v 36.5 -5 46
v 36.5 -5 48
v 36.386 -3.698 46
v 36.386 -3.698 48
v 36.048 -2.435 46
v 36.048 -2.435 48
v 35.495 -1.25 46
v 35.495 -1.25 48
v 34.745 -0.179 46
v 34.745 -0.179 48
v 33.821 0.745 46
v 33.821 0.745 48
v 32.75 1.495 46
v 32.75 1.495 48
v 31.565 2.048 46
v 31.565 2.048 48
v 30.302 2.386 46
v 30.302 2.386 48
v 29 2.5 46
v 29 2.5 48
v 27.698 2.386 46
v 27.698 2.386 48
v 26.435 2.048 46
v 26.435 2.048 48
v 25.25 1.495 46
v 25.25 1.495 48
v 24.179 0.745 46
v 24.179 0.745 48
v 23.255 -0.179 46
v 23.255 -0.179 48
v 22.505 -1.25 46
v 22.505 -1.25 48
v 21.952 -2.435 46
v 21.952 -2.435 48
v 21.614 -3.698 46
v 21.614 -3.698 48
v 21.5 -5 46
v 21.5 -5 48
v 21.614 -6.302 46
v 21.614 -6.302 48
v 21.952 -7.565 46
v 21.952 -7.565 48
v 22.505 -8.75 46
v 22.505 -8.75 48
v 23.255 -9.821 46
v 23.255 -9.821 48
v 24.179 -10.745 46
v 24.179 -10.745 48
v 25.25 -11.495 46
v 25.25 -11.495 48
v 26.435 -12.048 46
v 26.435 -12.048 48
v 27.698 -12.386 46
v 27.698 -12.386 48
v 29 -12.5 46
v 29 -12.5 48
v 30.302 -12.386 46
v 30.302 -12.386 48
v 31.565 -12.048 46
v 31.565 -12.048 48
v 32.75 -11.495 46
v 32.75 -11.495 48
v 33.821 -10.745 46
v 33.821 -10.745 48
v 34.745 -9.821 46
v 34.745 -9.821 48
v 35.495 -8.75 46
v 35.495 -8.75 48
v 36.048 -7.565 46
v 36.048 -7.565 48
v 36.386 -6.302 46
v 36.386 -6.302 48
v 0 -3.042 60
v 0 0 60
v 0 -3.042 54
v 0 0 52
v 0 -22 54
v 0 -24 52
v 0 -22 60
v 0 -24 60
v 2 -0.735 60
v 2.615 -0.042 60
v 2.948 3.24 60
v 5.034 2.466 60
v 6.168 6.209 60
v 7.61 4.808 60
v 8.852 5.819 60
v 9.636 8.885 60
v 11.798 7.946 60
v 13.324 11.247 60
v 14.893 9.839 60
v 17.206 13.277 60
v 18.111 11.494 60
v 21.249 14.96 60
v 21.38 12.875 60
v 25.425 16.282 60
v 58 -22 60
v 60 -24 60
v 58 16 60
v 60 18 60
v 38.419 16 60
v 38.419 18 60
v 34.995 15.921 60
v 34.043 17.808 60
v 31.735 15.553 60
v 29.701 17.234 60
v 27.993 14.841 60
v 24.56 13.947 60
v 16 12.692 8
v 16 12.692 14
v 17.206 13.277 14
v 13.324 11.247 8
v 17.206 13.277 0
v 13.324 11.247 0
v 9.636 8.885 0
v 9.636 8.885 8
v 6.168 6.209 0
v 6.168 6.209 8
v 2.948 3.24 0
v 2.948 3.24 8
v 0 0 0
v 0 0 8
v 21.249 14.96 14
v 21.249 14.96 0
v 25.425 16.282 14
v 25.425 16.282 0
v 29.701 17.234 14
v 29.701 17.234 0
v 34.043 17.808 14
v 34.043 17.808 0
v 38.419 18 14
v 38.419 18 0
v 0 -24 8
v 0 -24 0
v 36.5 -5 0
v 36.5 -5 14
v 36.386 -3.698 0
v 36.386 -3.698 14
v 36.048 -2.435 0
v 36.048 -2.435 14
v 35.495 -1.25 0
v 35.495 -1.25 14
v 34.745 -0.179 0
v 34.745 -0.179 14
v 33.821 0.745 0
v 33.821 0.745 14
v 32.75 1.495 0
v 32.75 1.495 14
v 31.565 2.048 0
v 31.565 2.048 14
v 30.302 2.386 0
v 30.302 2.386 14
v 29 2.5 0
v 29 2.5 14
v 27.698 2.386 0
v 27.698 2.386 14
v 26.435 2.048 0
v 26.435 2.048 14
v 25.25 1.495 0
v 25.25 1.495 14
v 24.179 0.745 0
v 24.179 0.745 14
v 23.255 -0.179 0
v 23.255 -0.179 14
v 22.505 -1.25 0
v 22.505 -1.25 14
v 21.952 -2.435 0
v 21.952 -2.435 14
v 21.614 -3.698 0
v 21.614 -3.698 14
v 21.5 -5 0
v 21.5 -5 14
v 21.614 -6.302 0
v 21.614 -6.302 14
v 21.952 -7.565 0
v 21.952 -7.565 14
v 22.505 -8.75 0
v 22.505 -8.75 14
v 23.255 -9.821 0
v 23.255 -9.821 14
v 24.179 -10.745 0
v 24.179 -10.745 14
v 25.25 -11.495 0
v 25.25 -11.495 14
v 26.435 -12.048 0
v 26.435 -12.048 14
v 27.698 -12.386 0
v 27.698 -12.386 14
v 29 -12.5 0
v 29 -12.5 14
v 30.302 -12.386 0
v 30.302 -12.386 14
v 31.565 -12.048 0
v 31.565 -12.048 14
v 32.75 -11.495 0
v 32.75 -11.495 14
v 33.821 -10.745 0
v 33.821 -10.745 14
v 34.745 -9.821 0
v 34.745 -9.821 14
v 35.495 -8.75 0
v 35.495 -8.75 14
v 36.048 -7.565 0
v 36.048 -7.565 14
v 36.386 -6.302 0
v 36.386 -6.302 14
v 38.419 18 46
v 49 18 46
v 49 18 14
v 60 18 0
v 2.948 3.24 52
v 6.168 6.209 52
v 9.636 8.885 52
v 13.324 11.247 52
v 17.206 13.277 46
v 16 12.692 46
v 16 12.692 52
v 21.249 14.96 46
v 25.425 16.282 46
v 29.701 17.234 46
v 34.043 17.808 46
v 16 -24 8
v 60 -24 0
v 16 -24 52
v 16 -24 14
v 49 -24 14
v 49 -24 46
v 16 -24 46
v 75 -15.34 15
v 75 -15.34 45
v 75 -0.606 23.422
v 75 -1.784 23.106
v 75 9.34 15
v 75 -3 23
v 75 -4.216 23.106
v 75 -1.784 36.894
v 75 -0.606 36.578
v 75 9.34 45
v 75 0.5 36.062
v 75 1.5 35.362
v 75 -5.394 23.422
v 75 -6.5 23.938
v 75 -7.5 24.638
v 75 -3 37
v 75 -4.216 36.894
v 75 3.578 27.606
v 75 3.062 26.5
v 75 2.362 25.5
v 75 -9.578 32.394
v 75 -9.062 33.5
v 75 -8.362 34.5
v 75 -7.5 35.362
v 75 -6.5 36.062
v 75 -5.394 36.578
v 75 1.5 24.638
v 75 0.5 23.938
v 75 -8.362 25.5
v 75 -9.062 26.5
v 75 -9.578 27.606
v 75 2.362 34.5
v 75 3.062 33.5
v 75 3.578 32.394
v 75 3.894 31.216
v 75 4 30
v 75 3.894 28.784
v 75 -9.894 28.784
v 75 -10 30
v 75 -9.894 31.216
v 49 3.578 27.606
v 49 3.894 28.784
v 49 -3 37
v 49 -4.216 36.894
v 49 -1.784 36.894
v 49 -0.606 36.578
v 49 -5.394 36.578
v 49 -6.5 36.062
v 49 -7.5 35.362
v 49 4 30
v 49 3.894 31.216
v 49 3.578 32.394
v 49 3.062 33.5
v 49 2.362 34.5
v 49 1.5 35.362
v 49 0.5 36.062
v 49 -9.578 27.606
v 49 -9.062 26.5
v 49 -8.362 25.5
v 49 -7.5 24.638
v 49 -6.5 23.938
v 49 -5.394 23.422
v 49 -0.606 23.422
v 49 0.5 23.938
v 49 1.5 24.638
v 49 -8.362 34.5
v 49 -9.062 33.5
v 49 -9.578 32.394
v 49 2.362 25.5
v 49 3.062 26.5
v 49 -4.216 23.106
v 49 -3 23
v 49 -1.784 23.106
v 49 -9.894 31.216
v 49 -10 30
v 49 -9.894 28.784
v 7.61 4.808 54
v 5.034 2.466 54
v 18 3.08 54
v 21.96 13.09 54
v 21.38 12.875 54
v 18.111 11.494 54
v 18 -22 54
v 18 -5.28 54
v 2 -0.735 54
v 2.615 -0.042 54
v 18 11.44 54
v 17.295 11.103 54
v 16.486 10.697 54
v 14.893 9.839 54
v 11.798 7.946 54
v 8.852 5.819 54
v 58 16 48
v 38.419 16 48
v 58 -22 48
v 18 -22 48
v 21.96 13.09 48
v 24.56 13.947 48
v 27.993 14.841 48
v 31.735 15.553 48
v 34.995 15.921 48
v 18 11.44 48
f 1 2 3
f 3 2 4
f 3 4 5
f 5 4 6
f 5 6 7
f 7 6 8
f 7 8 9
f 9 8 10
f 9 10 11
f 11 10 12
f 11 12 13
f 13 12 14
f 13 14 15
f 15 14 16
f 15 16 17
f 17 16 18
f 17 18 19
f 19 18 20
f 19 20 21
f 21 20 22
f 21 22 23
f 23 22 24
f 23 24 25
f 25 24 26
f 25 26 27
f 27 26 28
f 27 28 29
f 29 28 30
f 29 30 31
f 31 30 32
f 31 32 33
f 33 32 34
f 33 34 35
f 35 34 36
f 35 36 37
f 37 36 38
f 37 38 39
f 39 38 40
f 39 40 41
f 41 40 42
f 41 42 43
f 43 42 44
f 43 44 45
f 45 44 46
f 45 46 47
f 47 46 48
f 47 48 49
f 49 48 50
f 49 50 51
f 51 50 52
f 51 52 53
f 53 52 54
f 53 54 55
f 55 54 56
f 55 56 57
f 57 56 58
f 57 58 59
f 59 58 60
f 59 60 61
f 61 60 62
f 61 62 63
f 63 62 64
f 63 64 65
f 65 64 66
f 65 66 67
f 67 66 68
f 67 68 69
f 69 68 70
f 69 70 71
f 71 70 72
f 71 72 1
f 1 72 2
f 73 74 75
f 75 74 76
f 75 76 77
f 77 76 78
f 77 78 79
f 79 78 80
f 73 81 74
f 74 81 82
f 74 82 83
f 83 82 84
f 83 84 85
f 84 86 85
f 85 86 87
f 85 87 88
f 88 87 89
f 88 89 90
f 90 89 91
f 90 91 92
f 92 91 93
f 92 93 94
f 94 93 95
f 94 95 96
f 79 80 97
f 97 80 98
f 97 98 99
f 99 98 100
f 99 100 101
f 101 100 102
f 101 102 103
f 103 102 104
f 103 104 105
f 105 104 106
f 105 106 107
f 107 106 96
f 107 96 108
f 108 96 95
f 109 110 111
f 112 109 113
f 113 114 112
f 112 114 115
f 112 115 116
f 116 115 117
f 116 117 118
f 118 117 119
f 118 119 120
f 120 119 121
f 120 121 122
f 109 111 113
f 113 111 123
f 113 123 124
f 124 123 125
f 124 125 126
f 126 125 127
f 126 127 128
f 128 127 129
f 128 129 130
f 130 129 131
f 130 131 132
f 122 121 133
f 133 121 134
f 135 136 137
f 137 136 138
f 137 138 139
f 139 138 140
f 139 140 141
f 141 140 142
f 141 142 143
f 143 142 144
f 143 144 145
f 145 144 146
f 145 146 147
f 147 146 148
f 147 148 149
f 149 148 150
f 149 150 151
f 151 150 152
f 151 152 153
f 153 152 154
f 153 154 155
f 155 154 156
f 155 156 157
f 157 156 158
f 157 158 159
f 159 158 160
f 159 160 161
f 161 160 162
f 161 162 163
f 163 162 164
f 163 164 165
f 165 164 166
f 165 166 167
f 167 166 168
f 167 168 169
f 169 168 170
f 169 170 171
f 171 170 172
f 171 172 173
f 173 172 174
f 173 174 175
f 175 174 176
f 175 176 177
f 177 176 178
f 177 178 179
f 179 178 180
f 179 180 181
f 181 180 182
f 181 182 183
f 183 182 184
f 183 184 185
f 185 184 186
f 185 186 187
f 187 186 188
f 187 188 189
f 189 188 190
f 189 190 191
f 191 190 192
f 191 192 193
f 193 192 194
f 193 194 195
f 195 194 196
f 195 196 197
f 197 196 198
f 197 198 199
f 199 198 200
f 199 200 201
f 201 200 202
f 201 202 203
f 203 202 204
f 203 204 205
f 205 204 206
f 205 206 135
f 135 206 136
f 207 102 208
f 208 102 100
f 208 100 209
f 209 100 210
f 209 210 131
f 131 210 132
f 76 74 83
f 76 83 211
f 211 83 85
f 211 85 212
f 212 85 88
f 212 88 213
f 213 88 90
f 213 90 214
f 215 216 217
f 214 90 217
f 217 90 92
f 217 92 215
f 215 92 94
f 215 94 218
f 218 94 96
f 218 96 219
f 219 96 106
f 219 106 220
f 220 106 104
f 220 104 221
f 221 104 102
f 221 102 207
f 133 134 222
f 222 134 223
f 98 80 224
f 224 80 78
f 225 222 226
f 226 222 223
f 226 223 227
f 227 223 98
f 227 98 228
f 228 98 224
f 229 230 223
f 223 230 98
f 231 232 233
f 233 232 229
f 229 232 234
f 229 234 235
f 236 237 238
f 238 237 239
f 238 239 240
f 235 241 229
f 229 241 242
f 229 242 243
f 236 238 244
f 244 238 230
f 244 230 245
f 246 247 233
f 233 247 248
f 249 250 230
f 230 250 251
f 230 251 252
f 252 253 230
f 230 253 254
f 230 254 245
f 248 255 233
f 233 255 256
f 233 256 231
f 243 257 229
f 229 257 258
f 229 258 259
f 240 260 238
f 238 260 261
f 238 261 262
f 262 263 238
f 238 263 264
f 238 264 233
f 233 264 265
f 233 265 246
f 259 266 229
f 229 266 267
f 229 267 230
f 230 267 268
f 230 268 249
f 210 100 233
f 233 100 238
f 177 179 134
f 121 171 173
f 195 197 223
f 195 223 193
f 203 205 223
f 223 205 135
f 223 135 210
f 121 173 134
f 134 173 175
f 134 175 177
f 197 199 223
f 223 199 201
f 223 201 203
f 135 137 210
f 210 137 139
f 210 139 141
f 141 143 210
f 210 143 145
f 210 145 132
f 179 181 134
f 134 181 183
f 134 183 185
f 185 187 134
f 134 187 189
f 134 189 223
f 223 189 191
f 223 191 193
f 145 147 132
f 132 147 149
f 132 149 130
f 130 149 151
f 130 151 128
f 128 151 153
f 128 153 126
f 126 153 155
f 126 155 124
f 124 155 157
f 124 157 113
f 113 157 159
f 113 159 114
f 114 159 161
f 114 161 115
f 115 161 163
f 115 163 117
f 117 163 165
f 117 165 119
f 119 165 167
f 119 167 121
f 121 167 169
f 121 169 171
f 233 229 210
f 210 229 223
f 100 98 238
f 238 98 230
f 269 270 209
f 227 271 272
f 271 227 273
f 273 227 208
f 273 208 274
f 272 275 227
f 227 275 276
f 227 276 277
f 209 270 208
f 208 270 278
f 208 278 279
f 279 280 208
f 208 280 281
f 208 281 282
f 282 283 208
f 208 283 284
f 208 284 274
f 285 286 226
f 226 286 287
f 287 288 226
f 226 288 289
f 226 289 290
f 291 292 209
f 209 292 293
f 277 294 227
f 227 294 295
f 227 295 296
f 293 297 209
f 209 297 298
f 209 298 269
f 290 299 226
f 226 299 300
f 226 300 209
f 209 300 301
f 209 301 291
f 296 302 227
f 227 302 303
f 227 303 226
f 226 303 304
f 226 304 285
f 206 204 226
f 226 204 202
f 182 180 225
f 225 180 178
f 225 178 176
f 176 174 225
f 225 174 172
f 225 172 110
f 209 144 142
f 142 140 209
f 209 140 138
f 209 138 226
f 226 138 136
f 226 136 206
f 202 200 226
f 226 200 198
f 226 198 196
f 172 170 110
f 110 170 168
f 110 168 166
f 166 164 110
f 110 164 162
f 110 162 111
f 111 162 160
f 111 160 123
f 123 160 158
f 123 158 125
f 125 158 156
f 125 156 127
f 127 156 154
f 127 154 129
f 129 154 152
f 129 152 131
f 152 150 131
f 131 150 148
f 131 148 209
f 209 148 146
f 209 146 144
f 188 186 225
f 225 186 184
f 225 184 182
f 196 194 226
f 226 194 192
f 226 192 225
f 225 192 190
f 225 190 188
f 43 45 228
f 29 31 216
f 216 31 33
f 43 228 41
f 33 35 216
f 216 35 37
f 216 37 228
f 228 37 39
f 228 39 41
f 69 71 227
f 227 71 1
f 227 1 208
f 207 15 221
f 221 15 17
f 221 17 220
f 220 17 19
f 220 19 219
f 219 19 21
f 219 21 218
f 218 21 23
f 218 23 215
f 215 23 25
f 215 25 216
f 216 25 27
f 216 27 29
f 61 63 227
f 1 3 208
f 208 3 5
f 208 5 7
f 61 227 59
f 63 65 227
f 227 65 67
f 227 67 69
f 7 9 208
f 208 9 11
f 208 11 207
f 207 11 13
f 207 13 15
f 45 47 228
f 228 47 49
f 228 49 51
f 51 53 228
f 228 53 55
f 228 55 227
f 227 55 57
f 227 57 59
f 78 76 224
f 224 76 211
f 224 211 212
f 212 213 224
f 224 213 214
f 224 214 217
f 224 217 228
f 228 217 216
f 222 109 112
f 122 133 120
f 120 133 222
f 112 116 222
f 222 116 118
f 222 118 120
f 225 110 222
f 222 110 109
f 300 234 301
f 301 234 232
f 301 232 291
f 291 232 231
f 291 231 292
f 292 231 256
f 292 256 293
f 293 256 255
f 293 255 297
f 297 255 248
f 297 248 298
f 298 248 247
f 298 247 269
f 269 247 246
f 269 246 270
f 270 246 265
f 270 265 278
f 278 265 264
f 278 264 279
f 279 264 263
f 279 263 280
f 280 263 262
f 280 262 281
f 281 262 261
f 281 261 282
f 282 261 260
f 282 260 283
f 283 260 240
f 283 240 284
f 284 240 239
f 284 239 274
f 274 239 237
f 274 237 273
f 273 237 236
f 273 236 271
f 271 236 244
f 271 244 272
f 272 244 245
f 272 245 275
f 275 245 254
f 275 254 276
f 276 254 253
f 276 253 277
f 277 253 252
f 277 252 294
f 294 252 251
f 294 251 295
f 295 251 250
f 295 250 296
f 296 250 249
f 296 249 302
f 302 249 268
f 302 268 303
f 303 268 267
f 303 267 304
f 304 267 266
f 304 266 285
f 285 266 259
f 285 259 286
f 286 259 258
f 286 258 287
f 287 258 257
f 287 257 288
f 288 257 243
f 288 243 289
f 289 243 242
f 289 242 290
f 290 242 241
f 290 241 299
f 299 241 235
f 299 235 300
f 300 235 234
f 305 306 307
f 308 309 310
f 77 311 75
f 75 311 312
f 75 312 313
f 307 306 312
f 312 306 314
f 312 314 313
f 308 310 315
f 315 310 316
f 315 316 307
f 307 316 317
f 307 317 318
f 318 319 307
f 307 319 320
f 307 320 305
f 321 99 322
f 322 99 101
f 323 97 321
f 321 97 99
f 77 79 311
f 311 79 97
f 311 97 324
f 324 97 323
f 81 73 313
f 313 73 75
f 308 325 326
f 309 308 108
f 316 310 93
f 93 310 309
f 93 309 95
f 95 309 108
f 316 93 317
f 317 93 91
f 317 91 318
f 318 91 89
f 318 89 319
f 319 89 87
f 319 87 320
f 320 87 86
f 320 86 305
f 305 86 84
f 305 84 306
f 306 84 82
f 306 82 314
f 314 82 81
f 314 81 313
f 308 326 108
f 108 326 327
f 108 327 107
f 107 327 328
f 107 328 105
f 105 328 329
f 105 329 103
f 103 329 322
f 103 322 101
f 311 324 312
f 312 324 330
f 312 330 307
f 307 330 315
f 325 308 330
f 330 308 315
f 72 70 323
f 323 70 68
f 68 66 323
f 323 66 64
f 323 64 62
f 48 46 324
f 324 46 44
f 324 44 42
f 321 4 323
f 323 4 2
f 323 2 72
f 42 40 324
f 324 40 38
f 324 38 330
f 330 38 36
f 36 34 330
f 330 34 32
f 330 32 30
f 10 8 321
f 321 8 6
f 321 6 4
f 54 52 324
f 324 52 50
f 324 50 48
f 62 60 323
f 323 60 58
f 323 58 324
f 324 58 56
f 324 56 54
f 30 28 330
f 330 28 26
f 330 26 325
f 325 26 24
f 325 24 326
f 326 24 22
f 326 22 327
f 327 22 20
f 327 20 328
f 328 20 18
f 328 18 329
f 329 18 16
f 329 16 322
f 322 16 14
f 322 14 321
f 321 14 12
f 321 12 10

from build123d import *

# Parameters (mm, degrees)
BOSS_EXTRUDE1_DEPTH     = 60
CUT_EXTRUDE1_DEPTH      = 100
CUT_EXTRUDE1_DEPTH_BACK = 100
SKETCH2_R               = 7.5
CUT_EXTRUDE2_DEPTH      = 105.828431258
CUT_EXTRUDE3_DEPTH      = 105.828431258
CUT_EXTRUDE3_DEPTH_BACK = 105.828431258
SKETCH4_W               = 49
SKETCH4_H               = 32
CUT_EXTRUDE4_DEPTH      = 105.828431258
CUT_EXTRUDE4_DEPTH_BACK = 105.828431258
SKETCH5_W               = 16
SKETCH5_H               = 6
CUT_EXTRUDE6_DEPTH      = 100
CUT_EXTRUDE6_DEPTH_BACK = 100
SKETCH6_R               = 7
CUT_EXTRUDE7_DEPTH      = 6
CUT_EXTRUDE13_START     = -6
CUT_EXTRUDE13_OUTLINE_R = 7.5
CUT_EXTRUDE13_DEPTH     = 6


# Read off the part's stored shape, not the designer's step: Cut-Extrude13
with BuildPart() as part:
    # Sketch1 → Boss-Extrude1 (new body)
    with BuildSketch(Plane.XY):
        with BuildLine():
            Line((60, 18), (38.418745425, 18))
            ThreePointArc((38.418745425, 18), (17.205541989, 13.276925691), (0, 0))
            Line((0, 0), (0, -24))
            Line((0, -24), (60, -24))
            Line((60, -24), (75, -15.339745962))
            Line((75, -15.339745962), (75, 9.339745962))
            Line((75, 9.339745962), (60, 18))
        make_face()
    extrude(amount=BOSS_EXTRUDE1_DEPTH)

    # Sketch2 → Cut-Extrude1 (cut, two sides: drawn at the far end of the back side and taken through both)
    with BuildSketch(Plane.XY.offset(60).offset(-CUT_EXTRUDE1_DEPTH_BACK)):
        with Locations((29, -5)):
            Circle(SKETCH2_R)
    extrude(amount=CUT_EXTRUDE1_DEPTH + CUT_EXTRUDE1_DEPTH_BACK, mode=Mode.SUBTRACT)

    # Sketch3 → Cut-Extrude2 (cut, through all)
    with BuildSketch(Plane(origin=(0, 18, 0), x_dir=(1, 0, 0), z_dir=(0, 1, 0))):
        Polygon((60, 0), (75, -15), (75, 0), align=None)
        Polygon((60, -60), (75, -60), (75, -45), align=None)
    extrude(amount=-CUT_EXTRUDE2_DEPTH, mode=Mode.SUBTRACT)

    # Sketch4 → Cut-Extrude3 (cut, two sides: drawn at the far end of the back side and taken through both)
    with BuildSketch(Plane(origin=(0, 18, 0), x_dir=(1, 0, 0), z_dir=(0, 1, 0)).offset(-CUT_EXTRUDE3_DEPTH_BACK)):
        with Locations((24.5, -30)):
            Rectangle(SKETCH4_W, SKETCH4_H)
    extrude(amount=CUT_EXTRUDE3_DEPTH + CUT_EXTRUDE3_DEPTH_BACK, mode=Mode.SUBTRACT)

    # Sketch5 → Cut-Extrude4 (cut, two sides: drawn at the far end of the back side and taken through both)
    with BuildSketch(Plane(origin=(0, 18, 0), x_dir=(1, 0, 0), z_dir=(0, 1, 0)).offset(-CUT_EXTRUDE4_DEPTH_BACK)):
        with Locations((8, -11)):
            Rectangle(SKETCH5_W, SKETCH5_H)
        with Locations((8, -49)):
            Rectangle(SKETCH5_W, SKETCH5_H)
    extrude(amount=CUT_EXTRUDE4_DEPTH + CUT_EXTRUDE4_DEPTH_BACK, mode=Mode.SUBTRACT)

    # Sketch6 → Cut-Extrude6 (cut, two sides: drawn at the far end of the back side and taken through both)
    with BuildSketch(Plane(origin=(75, 0, 0), x_dir=(0, 0, -1), z_dir=(1, 0, 0)).offset(-CUT_EXTRUDE6_DEPTH_BACK)):
        with Locations((-30, -3)):
            Circle(SKETCH6_R)
    extrude(amount=CUT_EXTRUDE6_DEPTH + CUT_EXTRUDE6_DEPTH_BACK, mode=Mode.SUBTRACT)

    # 3DSketch1 → Cut-Extrude7 (cut)
    with BuildSketch(Plane(origin=(2, -22, 60), x_dir=(0.8274757743917585, 0.5615014183372646, 0), z_dir=(0, 0, -1))):
        with BuildLine():
            Line((0, 0), (46.338643366, 31.444079427))
            Line((46.338643366, 31.444079427), (67.675697263, 0))
            Line((67.675697263, 0), (51.472683469, -10.994902217))
            add(Edge.make_bspline(
                [(51.472683469, -10.994902217), (51.00988811, -11.308941925), (50.54709275, -11.622981633), (50.081937087, -11.933401281), (48.672308272, -12.842939856), (47.19895125, -13.654736784), (46.194725989, -14.158808627), (43.645035729, -15.341959521), (41.037130207, -16.372005027), (39.451628921, -16.928242653), (36.239509448, -17.903795074), (32.945954255, -18.578814885), (31.283999686, -18.84258235), (27.940100514, -19.225413824), (24.576949104, -19.324401234), (22.894937643, -19.299992929), (20.094000133, -19.130990082), (17.316239244, -18.739706134), (16.20712535, -18.550994584), (14.685796858, -18.252372423), (13.175745435, -17.907974305), (12.762523967, -17.809287194), (12.350651667, -17.705660499), (11.940378642, -17.596347472)],
                knots=[0, 0, 0, 0, 0, 0, 0.067720945, 0.067720945, 0.067720945, 0.203162835, 0.203162835, 0.203162835, 0.406325669, 0.406325669, 0.406325669, 0.609488504, 0.609488504, 0.609488504, 0.812651339, 0.812651339, 0.812651339, 0.94859619, 0.94859619, 0.94859619, 1, 1, 1, 1, 1, 1], degree=5))
            Line((11.940378642, -17.596347472), (8.989958239, -16.810238314))
            Line((8.989958239, -16.810238314), (-1.654951549, -1.123002837))
            Line((-1.654951549, -1.123002837), (0, 0))
        make_face()
    extrude(amount=CUT_EXTRUDE7_DEPTH, mode=Mode.SUBTRACT)

    # Cut-Extrude13 outline → Cut-Extrude13 (cut)
    with BuildSketch(Plane.XY.offset(54).offset(CUT_EXTRUDE13_START)):
        with BuildLine():
            Line((58, 16), (38.418745425, 16))
            add(Edge.make_bspline(
                [(38.418745425, 16), (37.859459734, 16), (37.300174044, 16), (36.740967929, 15.995679173), (35.063827034, 15.956791732), (33.388834665, 15.801241966), (32.274825535, 15.654475296), (29.500677707, 15.201849301), (26.764327053, 14.589844353), (25.140034933, 14.159856293), (23.537172375, 13.661674471), (21.959650667, 13.089890217)],
                knots=[0, 0, 0, 0, 0, 0, 0.067720945, 0.067720945, 0.067720945, 0.203162835, 0.203162835, 0.203162835, 0.406325669, 0.406325669, 0.406325669, 0.406325669, 0.406325669, 0.406325669], degree=5))
            ThreePointArc((21.959650667, 13.089890217), (19.961391414, 12.309435597), (18, 11.440474621))
            Line((18, 11.440474621), (18, -22))
            Line((18, -22), (58, -22))
            Line((58, -22), (58, 16))
        make_face()
        with Locations((29, -5)):
            Circle(CUT_EXTRUDE13_OUTLINE_R, mode=Mode.SUBTRACT)
    extrude(amount=CUT_EXTRUDE13_DEPTH, mode=Mode.SUBTRACT)


solid = part.part
